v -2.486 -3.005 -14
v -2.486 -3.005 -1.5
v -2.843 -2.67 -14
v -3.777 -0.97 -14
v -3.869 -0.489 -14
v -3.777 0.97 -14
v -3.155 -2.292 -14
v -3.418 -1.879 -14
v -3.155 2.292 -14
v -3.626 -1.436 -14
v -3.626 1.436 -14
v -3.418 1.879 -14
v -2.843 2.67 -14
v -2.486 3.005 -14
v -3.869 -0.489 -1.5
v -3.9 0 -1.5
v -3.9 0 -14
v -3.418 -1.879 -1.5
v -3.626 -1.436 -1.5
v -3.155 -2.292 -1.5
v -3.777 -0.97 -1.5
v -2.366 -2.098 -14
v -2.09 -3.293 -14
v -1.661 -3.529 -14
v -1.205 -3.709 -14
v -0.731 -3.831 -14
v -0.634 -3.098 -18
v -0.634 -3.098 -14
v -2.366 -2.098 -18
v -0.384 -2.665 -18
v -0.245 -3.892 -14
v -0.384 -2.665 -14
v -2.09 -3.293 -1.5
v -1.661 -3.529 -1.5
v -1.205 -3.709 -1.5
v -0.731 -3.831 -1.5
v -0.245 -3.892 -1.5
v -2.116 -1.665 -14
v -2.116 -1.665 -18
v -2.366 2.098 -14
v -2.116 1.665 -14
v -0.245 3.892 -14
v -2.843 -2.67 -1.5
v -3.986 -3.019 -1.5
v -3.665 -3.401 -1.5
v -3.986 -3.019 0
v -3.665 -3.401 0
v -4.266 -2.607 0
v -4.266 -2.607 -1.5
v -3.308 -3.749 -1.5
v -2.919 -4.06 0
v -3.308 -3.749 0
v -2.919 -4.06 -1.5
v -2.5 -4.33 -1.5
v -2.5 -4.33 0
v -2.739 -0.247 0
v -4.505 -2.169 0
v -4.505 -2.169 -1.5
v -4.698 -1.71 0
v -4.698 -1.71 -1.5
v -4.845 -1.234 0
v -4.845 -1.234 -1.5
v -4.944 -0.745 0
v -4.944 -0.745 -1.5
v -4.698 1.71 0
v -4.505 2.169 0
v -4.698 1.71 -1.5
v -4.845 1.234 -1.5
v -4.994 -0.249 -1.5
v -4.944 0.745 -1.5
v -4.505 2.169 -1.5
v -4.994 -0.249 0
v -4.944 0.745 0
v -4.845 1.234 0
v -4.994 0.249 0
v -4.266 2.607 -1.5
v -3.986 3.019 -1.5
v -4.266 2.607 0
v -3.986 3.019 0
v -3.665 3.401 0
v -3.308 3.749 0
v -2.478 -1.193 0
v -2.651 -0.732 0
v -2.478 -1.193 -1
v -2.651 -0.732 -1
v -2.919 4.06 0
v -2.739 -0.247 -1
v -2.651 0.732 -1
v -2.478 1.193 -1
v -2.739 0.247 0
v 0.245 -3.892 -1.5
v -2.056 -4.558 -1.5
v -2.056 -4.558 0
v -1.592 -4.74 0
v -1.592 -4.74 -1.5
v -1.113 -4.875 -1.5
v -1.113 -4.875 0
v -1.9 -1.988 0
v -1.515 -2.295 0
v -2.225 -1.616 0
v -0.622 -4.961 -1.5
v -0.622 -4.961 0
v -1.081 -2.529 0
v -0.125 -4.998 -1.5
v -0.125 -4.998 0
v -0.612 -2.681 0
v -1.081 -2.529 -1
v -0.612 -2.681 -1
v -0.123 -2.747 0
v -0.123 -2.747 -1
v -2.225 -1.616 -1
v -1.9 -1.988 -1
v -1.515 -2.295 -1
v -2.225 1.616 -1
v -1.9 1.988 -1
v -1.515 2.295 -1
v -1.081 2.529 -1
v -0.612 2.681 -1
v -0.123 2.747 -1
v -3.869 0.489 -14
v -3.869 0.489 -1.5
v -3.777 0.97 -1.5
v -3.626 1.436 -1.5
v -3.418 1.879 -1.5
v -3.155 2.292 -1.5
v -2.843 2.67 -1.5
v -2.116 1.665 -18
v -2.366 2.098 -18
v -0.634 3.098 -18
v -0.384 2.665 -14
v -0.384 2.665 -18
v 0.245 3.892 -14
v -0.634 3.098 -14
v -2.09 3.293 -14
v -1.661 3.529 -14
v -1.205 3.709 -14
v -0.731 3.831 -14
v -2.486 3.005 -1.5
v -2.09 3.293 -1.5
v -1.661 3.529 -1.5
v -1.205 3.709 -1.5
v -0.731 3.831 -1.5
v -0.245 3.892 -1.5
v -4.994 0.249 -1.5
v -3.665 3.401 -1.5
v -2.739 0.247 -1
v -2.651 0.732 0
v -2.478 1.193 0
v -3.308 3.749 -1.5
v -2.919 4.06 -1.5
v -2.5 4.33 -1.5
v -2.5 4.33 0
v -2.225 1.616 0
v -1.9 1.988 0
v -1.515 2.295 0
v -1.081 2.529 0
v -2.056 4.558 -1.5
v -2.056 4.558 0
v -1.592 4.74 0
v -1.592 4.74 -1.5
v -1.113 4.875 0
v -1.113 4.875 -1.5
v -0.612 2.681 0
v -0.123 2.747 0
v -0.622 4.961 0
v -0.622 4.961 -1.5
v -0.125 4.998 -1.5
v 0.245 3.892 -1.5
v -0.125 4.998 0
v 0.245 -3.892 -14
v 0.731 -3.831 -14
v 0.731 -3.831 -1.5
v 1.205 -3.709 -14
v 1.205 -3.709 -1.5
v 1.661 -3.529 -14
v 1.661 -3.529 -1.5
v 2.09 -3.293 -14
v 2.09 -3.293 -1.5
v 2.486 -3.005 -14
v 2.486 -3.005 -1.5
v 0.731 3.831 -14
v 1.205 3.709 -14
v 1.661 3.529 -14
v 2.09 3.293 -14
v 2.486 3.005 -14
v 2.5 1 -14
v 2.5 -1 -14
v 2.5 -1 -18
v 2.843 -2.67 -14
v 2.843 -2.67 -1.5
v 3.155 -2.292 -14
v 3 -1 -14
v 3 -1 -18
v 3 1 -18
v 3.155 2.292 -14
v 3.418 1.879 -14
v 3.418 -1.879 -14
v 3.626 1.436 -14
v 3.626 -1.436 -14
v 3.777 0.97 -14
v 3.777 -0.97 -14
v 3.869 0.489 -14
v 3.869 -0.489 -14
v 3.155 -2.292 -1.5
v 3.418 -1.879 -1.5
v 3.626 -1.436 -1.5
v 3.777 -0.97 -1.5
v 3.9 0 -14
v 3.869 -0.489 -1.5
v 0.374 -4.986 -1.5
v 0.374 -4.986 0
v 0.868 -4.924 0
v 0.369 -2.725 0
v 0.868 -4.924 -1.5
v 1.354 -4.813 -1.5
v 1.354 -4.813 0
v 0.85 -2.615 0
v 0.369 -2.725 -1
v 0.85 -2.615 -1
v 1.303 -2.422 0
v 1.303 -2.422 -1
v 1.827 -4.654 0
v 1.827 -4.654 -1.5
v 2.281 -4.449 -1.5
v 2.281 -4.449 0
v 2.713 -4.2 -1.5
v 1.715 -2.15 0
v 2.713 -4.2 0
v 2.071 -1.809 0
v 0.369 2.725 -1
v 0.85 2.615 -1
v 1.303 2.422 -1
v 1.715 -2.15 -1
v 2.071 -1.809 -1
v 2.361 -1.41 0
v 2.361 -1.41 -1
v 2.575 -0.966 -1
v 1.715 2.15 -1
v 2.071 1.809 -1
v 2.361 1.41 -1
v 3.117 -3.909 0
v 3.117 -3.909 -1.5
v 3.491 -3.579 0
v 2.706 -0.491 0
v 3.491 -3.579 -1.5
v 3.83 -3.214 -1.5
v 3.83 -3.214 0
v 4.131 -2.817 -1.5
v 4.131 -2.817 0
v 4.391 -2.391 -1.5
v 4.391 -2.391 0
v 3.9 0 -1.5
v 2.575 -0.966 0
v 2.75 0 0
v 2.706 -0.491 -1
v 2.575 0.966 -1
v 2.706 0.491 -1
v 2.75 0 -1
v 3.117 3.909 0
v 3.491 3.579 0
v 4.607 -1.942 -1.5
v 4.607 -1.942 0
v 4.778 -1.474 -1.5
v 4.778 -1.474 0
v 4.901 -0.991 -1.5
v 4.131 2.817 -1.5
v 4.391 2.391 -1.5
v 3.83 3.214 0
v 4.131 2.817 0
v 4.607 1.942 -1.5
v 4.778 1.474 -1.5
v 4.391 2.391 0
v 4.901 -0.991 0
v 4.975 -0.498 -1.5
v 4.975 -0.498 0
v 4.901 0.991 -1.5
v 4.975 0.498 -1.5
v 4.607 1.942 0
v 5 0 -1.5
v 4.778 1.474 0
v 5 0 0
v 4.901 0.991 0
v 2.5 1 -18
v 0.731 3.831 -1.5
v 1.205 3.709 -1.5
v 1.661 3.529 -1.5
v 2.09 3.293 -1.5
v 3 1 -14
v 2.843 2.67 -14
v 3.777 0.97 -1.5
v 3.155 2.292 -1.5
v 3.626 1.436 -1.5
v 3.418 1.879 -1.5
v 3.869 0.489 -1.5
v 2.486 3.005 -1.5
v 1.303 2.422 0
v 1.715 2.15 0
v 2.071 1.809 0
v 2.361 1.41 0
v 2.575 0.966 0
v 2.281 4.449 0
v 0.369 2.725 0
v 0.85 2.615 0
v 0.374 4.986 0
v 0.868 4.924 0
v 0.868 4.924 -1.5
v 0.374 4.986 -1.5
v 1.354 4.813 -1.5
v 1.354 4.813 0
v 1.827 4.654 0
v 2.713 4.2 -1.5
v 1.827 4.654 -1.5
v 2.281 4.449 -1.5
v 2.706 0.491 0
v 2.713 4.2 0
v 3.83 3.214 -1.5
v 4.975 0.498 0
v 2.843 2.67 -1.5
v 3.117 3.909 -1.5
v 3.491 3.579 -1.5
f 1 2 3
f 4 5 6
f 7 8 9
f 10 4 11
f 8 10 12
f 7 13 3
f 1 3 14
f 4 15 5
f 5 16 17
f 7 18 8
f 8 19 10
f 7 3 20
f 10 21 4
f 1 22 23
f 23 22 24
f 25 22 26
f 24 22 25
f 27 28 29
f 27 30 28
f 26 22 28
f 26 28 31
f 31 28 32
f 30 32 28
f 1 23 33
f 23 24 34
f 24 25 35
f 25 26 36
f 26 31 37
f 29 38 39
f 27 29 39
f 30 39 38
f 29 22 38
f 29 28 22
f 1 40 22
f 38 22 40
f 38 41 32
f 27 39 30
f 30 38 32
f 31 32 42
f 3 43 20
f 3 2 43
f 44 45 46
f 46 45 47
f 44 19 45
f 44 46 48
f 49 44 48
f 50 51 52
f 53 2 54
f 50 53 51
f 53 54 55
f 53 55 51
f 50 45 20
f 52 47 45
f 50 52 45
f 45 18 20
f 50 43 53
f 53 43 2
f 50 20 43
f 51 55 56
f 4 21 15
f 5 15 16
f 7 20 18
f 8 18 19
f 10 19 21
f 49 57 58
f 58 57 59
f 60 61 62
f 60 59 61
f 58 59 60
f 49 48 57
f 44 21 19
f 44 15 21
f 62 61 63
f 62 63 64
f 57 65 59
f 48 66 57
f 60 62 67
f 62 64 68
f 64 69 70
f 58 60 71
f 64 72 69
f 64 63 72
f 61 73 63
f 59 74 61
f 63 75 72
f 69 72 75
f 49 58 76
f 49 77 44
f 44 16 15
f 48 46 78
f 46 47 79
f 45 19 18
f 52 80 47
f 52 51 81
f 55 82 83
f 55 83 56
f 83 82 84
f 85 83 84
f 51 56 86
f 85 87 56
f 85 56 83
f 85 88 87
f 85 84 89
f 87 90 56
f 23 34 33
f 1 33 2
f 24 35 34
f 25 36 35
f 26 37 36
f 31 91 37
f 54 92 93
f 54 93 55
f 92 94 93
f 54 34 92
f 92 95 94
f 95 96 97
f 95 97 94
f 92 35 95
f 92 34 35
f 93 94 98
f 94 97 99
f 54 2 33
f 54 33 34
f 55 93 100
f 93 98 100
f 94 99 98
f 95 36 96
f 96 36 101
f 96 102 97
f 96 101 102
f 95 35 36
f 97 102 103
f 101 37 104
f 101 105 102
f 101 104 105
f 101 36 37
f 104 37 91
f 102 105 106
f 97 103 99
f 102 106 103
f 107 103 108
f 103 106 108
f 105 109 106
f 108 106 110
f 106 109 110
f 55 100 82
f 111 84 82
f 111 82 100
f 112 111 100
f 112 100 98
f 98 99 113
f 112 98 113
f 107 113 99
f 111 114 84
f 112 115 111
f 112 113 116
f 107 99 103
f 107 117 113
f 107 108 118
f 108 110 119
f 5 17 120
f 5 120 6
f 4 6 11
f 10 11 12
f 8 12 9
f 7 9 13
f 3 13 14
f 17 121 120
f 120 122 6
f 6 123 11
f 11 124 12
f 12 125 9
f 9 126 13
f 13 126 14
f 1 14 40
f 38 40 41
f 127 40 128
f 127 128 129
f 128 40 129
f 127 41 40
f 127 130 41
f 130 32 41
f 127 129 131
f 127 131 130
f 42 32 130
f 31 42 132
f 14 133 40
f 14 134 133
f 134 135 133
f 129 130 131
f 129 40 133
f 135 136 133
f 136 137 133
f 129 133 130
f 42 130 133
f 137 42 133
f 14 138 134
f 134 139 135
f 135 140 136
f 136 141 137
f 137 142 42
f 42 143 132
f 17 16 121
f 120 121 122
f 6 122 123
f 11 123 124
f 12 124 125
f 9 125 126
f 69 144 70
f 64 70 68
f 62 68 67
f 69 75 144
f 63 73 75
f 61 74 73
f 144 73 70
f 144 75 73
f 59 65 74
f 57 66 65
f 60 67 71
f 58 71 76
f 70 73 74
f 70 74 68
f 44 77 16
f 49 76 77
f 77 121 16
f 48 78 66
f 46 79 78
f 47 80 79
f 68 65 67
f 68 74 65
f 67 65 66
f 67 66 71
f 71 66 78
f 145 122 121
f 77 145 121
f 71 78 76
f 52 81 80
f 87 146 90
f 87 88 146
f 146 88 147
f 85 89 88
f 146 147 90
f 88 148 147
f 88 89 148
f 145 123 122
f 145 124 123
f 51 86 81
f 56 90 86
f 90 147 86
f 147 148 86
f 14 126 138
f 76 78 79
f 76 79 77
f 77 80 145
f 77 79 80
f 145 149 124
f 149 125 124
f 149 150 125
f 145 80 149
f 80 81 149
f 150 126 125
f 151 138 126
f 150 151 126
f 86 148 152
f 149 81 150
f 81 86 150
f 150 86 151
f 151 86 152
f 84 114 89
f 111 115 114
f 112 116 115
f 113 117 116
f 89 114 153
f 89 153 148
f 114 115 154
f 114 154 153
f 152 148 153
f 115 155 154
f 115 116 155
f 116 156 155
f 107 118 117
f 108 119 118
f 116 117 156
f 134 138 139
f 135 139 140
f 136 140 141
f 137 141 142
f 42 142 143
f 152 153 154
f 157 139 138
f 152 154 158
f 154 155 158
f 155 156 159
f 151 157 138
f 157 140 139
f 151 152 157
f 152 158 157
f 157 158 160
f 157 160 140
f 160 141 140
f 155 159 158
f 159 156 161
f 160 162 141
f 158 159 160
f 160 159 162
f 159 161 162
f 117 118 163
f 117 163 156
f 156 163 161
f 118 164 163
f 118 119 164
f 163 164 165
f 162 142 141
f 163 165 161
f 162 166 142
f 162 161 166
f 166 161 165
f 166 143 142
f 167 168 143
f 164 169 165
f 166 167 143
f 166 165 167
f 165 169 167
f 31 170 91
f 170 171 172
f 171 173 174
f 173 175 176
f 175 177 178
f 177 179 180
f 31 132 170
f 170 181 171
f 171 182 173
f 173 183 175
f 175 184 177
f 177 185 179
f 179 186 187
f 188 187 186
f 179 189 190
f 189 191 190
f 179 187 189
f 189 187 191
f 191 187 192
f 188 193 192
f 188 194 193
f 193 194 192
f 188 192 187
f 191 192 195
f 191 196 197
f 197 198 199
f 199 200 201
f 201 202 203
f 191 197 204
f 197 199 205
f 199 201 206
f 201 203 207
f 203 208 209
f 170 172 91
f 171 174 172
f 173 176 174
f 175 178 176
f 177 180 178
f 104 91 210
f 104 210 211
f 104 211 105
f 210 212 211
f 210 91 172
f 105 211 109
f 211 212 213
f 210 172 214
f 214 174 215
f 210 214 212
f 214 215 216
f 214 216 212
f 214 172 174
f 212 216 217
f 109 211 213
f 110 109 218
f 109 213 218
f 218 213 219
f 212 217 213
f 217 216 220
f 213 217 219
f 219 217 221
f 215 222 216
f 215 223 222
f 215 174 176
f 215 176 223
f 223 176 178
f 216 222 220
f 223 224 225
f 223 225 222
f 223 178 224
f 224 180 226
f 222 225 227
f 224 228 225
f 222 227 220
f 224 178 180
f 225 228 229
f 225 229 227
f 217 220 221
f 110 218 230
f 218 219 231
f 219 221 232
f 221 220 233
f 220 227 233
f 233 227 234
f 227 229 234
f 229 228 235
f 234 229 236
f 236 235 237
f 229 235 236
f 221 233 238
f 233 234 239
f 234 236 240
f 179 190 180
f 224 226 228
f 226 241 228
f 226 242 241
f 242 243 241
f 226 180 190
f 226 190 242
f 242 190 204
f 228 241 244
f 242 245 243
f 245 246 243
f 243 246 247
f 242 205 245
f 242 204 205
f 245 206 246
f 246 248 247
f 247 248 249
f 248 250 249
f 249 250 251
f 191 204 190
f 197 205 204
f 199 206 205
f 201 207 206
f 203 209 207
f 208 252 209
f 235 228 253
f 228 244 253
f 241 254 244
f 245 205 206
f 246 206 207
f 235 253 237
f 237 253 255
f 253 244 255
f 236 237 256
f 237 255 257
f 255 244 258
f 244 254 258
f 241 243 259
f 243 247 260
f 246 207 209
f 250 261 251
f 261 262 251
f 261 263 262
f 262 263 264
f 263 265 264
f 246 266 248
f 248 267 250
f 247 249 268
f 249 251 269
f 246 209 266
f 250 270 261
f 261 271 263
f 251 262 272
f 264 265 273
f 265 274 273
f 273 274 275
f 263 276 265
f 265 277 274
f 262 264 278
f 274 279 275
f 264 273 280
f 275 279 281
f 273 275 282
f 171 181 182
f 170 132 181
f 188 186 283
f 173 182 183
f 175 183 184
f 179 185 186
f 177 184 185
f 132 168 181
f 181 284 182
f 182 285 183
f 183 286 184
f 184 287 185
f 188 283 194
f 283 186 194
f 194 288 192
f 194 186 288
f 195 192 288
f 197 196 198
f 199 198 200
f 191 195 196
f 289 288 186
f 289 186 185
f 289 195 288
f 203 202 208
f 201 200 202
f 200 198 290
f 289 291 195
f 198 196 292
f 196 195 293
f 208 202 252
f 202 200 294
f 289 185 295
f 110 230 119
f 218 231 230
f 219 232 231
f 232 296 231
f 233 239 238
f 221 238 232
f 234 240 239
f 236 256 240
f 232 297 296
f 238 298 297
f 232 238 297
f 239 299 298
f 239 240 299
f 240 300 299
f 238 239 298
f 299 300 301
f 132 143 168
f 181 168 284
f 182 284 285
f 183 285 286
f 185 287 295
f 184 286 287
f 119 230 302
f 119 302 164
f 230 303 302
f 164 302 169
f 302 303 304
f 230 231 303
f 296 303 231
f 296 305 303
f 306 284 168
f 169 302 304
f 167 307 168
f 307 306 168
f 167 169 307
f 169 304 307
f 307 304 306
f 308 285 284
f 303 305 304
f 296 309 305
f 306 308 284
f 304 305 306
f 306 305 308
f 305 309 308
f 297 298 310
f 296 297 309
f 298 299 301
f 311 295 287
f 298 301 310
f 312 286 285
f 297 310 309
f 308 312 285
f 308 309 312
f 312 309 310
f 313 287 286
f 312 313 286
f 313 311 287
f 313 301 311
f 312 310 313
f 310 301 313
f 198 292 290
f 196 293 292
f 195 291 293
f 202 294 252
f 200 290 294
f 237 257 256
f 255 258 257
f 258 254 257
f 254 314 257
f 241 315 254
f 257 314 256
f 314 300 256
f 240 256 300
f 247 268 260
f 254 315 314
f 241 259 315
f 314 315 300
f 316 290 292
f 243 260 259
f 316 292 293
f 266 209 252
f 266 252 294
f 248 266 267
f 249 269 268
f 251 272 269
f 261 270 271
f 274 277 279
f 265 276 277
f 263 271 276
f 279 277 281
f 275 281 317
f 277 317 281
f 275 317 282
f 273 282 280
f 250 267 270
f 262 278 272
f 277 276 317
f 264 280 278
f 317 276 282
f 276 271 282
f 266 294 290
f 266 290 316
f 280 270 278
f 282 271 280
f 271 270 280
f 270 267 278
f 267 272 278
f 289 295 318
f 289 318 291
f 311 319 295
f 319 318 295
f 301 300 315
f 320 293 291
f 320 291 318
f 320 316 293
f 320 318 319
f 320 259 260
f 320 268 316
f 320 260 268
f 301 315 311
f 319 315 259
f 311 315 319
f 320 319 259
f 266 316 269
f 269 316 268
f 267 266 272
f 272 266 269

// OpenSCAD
// file: ../lib/lib.scad
// Shared helpers. Include AFTER params.scad (needs TOL, M3_* etc.).
$fa = 4; $fs = 0.5;

module rrect(size, r) {            // 2D rounded rectangle, centred
    r2 = min(r, min(size[0], size[1]) / 2 - 0.001);
    offset(r = r2) square([size[0] - 2 * r2, size[1] - 2 * r2], center = true);
}
module rbox(size, r, center_xy = true) {   // box with rounded vertical edges
    translate(center_xy ? [0, 0, 0] : [size[0] / 2, size[1] / 2, 0])
        linear_extrude(size[2]) rrect([size[0], size[1]], r);
}
module rbox_at(x0, x1, y0, y1, z0, z1, r = 0.01) {
    translate([(x0 + x1) / 2, (y0 + y1) / 2, z0]) rbox([x1 - x0, y1 - y0, z1 - z0], r);
}
module box_at(x0, x1, y0, y1, z0, z1) { translate([x0, y0, z0]) cube([x1 - x0, y1 - y0, z1 - z0]); }

module ring(ro, ri, h) { difference() { cylinder(r = ro, h = h); translate([0, 0, -1]) cylinder(r = ri, h = h + 2); } }
module ring_sector(ro, ri, h, a0, a1) {
    intersection() {
        ring(ro, ri, h);
        linear_extrude(h) polygon(concat([[0, 0]], [for (a = [a0 : (a1 - a0) / 24 : a1]) 2 * ro * [cos(a), sin(a)]]));
    }
}
// teardrop hole along an axis lying horizontal (axis = Y after rotation), printable w/o support
module teardrop2d(d) { union() { circle(d = d); rotate(45) square(d / 2); } }
// vertical heat-set insert hole, opening at z=0 going +z (depth l)
module insert_hole(l = M3_INSERT_L) { translate([0, 0, -EPS]) cylinder(d = M3_INSERT_D, h = l + EPS); }
module m3_clear(l) { translate([0, 0, -EPS]) cylinder(d = M3_CLEAR, h = l + 2 * EPS); }
module m3_csk(l) {  // countersunk clearance from z=0 upward, head at z=0 side
    translate([0, 0, -EPS]) { cylinder(d = M3_CLEAR, h = l + 2 * EPS); cylinder(d1 = 6.4, d2 = M3_CLEAR, h = 1.7); }
}
module card2d() { rrect([CARD_L, CARD_W], CARD_R); }
module card_at(cy, z) { translate([0, cy, z]) linear_extrude(CARD_T) card2d(); }

// ---- gears ----
function _inv(a) = tan(a) - a * PI_ / 180;           // involute function, a in deg
function _invpt(rb, r, ang0, s) = let(al = acos(rb / r), th = ang0 - s * (_inv(al) * 180 / PI_)) [r * cos(th), r * sin(th)];
module involute_gear2d(m, z, pa = 20, clearance = 0.05) {
    rp = m * z / 2; rb = rp * cos(pa); ra = rp + m - clearance; rf = rp - 1.25 * m;
    half = 90 / z + _inv(pa) * 180 / PI_;            // tooth half-angle at base (deg)
    n = 8;
    rs = [for (i = [0 : n]) max(rb, rf) + (ra - max(rb, rf)) * i / n];
    union() {
        circle(r = rf, $fn = z * 4);
        for (k = [0 : z - 1]) rotate(k * 360 / z) polygon(concat(
            [[rf * cos(-half), rf * sin(-half)]],
            [for (r = rs) let(p = _invpt(rb, r, half, 1)) [p[0], -p[1]]],
            [for (i = [n : -1 : 0]) _invpt(rb, rs[i], half, 1)],
            [[rf * cos(half), rf * sin(half)]]));
    }
}
// straight gear rack (2D in XY: teeth along +x, pointing -y, pitch line at y=0)
module gear_rack2d(m, len, back = 3) {
    p = PI_ * m; ad = m; de = 1.25 * m; t = tan(20);
    n = ceil(len / p) + 1;
    intersection() {
        union() {
            translate([0, de]) square([len, back]);
            for (i = [0 : n]) translate([i * p - p / 4, 0]) polygon([
                [-(p / 4 + de * t), de + 0.01], [p / 4 + de * t + 0.01, de + 0.01],
                [p / 4 - ad * t, -ad], [-(p / 4 - ad * t), -ad] ]);
        }
        translate([0, -ad - 1]) square([len, ad + de + back + 2]);
    }
}
// GT2 belt-tooth profile ring (teeth outward), 2D
module gt2_ring2d(n, r_land, ri) {
    union() {
        difference() { circle(r = r_land + 0.01, $fn = n * 2); circle(r = ri, $fn = n * 2); }
        for (k = [0 : n - 1]) rotate(k * 360 / n)
            translate([r_land, 0]) hull() { translate([-0.2, 0]) square([0.2, 1.0], center = true); translate([0.25, 0]) circle(r = 0.5, $fn = 12); }
    }
}
// main file
// Vendor model: Panel-mount DC jack 5.5x2.1 mm, M8 thread (charge input). Local: front face z=0, body toward -Z.
include <../params.scad>
include <../lib/lib.scad>
module vendor_dc_jack_panel() {
    color([0.1,0.1,0.1]) difference() { translate([0, 0, -1.5]) cylinder(d = 10, h = 1.5); translate([0, 0, -1]) cylinder(d = 5.5, h = 2); }
    color([0.15,0.15,0.15]) translate([0, 0, -14]) cylinder(d = 7.8, h = 12.5);
    color([0.8,0.8,0.8]) for (a = [0, 120, 240]) rotate(a) translate([2.5, -1, -18]) cube([0.5, 2, 4]);
}

vendor_dc_jack_panel();
